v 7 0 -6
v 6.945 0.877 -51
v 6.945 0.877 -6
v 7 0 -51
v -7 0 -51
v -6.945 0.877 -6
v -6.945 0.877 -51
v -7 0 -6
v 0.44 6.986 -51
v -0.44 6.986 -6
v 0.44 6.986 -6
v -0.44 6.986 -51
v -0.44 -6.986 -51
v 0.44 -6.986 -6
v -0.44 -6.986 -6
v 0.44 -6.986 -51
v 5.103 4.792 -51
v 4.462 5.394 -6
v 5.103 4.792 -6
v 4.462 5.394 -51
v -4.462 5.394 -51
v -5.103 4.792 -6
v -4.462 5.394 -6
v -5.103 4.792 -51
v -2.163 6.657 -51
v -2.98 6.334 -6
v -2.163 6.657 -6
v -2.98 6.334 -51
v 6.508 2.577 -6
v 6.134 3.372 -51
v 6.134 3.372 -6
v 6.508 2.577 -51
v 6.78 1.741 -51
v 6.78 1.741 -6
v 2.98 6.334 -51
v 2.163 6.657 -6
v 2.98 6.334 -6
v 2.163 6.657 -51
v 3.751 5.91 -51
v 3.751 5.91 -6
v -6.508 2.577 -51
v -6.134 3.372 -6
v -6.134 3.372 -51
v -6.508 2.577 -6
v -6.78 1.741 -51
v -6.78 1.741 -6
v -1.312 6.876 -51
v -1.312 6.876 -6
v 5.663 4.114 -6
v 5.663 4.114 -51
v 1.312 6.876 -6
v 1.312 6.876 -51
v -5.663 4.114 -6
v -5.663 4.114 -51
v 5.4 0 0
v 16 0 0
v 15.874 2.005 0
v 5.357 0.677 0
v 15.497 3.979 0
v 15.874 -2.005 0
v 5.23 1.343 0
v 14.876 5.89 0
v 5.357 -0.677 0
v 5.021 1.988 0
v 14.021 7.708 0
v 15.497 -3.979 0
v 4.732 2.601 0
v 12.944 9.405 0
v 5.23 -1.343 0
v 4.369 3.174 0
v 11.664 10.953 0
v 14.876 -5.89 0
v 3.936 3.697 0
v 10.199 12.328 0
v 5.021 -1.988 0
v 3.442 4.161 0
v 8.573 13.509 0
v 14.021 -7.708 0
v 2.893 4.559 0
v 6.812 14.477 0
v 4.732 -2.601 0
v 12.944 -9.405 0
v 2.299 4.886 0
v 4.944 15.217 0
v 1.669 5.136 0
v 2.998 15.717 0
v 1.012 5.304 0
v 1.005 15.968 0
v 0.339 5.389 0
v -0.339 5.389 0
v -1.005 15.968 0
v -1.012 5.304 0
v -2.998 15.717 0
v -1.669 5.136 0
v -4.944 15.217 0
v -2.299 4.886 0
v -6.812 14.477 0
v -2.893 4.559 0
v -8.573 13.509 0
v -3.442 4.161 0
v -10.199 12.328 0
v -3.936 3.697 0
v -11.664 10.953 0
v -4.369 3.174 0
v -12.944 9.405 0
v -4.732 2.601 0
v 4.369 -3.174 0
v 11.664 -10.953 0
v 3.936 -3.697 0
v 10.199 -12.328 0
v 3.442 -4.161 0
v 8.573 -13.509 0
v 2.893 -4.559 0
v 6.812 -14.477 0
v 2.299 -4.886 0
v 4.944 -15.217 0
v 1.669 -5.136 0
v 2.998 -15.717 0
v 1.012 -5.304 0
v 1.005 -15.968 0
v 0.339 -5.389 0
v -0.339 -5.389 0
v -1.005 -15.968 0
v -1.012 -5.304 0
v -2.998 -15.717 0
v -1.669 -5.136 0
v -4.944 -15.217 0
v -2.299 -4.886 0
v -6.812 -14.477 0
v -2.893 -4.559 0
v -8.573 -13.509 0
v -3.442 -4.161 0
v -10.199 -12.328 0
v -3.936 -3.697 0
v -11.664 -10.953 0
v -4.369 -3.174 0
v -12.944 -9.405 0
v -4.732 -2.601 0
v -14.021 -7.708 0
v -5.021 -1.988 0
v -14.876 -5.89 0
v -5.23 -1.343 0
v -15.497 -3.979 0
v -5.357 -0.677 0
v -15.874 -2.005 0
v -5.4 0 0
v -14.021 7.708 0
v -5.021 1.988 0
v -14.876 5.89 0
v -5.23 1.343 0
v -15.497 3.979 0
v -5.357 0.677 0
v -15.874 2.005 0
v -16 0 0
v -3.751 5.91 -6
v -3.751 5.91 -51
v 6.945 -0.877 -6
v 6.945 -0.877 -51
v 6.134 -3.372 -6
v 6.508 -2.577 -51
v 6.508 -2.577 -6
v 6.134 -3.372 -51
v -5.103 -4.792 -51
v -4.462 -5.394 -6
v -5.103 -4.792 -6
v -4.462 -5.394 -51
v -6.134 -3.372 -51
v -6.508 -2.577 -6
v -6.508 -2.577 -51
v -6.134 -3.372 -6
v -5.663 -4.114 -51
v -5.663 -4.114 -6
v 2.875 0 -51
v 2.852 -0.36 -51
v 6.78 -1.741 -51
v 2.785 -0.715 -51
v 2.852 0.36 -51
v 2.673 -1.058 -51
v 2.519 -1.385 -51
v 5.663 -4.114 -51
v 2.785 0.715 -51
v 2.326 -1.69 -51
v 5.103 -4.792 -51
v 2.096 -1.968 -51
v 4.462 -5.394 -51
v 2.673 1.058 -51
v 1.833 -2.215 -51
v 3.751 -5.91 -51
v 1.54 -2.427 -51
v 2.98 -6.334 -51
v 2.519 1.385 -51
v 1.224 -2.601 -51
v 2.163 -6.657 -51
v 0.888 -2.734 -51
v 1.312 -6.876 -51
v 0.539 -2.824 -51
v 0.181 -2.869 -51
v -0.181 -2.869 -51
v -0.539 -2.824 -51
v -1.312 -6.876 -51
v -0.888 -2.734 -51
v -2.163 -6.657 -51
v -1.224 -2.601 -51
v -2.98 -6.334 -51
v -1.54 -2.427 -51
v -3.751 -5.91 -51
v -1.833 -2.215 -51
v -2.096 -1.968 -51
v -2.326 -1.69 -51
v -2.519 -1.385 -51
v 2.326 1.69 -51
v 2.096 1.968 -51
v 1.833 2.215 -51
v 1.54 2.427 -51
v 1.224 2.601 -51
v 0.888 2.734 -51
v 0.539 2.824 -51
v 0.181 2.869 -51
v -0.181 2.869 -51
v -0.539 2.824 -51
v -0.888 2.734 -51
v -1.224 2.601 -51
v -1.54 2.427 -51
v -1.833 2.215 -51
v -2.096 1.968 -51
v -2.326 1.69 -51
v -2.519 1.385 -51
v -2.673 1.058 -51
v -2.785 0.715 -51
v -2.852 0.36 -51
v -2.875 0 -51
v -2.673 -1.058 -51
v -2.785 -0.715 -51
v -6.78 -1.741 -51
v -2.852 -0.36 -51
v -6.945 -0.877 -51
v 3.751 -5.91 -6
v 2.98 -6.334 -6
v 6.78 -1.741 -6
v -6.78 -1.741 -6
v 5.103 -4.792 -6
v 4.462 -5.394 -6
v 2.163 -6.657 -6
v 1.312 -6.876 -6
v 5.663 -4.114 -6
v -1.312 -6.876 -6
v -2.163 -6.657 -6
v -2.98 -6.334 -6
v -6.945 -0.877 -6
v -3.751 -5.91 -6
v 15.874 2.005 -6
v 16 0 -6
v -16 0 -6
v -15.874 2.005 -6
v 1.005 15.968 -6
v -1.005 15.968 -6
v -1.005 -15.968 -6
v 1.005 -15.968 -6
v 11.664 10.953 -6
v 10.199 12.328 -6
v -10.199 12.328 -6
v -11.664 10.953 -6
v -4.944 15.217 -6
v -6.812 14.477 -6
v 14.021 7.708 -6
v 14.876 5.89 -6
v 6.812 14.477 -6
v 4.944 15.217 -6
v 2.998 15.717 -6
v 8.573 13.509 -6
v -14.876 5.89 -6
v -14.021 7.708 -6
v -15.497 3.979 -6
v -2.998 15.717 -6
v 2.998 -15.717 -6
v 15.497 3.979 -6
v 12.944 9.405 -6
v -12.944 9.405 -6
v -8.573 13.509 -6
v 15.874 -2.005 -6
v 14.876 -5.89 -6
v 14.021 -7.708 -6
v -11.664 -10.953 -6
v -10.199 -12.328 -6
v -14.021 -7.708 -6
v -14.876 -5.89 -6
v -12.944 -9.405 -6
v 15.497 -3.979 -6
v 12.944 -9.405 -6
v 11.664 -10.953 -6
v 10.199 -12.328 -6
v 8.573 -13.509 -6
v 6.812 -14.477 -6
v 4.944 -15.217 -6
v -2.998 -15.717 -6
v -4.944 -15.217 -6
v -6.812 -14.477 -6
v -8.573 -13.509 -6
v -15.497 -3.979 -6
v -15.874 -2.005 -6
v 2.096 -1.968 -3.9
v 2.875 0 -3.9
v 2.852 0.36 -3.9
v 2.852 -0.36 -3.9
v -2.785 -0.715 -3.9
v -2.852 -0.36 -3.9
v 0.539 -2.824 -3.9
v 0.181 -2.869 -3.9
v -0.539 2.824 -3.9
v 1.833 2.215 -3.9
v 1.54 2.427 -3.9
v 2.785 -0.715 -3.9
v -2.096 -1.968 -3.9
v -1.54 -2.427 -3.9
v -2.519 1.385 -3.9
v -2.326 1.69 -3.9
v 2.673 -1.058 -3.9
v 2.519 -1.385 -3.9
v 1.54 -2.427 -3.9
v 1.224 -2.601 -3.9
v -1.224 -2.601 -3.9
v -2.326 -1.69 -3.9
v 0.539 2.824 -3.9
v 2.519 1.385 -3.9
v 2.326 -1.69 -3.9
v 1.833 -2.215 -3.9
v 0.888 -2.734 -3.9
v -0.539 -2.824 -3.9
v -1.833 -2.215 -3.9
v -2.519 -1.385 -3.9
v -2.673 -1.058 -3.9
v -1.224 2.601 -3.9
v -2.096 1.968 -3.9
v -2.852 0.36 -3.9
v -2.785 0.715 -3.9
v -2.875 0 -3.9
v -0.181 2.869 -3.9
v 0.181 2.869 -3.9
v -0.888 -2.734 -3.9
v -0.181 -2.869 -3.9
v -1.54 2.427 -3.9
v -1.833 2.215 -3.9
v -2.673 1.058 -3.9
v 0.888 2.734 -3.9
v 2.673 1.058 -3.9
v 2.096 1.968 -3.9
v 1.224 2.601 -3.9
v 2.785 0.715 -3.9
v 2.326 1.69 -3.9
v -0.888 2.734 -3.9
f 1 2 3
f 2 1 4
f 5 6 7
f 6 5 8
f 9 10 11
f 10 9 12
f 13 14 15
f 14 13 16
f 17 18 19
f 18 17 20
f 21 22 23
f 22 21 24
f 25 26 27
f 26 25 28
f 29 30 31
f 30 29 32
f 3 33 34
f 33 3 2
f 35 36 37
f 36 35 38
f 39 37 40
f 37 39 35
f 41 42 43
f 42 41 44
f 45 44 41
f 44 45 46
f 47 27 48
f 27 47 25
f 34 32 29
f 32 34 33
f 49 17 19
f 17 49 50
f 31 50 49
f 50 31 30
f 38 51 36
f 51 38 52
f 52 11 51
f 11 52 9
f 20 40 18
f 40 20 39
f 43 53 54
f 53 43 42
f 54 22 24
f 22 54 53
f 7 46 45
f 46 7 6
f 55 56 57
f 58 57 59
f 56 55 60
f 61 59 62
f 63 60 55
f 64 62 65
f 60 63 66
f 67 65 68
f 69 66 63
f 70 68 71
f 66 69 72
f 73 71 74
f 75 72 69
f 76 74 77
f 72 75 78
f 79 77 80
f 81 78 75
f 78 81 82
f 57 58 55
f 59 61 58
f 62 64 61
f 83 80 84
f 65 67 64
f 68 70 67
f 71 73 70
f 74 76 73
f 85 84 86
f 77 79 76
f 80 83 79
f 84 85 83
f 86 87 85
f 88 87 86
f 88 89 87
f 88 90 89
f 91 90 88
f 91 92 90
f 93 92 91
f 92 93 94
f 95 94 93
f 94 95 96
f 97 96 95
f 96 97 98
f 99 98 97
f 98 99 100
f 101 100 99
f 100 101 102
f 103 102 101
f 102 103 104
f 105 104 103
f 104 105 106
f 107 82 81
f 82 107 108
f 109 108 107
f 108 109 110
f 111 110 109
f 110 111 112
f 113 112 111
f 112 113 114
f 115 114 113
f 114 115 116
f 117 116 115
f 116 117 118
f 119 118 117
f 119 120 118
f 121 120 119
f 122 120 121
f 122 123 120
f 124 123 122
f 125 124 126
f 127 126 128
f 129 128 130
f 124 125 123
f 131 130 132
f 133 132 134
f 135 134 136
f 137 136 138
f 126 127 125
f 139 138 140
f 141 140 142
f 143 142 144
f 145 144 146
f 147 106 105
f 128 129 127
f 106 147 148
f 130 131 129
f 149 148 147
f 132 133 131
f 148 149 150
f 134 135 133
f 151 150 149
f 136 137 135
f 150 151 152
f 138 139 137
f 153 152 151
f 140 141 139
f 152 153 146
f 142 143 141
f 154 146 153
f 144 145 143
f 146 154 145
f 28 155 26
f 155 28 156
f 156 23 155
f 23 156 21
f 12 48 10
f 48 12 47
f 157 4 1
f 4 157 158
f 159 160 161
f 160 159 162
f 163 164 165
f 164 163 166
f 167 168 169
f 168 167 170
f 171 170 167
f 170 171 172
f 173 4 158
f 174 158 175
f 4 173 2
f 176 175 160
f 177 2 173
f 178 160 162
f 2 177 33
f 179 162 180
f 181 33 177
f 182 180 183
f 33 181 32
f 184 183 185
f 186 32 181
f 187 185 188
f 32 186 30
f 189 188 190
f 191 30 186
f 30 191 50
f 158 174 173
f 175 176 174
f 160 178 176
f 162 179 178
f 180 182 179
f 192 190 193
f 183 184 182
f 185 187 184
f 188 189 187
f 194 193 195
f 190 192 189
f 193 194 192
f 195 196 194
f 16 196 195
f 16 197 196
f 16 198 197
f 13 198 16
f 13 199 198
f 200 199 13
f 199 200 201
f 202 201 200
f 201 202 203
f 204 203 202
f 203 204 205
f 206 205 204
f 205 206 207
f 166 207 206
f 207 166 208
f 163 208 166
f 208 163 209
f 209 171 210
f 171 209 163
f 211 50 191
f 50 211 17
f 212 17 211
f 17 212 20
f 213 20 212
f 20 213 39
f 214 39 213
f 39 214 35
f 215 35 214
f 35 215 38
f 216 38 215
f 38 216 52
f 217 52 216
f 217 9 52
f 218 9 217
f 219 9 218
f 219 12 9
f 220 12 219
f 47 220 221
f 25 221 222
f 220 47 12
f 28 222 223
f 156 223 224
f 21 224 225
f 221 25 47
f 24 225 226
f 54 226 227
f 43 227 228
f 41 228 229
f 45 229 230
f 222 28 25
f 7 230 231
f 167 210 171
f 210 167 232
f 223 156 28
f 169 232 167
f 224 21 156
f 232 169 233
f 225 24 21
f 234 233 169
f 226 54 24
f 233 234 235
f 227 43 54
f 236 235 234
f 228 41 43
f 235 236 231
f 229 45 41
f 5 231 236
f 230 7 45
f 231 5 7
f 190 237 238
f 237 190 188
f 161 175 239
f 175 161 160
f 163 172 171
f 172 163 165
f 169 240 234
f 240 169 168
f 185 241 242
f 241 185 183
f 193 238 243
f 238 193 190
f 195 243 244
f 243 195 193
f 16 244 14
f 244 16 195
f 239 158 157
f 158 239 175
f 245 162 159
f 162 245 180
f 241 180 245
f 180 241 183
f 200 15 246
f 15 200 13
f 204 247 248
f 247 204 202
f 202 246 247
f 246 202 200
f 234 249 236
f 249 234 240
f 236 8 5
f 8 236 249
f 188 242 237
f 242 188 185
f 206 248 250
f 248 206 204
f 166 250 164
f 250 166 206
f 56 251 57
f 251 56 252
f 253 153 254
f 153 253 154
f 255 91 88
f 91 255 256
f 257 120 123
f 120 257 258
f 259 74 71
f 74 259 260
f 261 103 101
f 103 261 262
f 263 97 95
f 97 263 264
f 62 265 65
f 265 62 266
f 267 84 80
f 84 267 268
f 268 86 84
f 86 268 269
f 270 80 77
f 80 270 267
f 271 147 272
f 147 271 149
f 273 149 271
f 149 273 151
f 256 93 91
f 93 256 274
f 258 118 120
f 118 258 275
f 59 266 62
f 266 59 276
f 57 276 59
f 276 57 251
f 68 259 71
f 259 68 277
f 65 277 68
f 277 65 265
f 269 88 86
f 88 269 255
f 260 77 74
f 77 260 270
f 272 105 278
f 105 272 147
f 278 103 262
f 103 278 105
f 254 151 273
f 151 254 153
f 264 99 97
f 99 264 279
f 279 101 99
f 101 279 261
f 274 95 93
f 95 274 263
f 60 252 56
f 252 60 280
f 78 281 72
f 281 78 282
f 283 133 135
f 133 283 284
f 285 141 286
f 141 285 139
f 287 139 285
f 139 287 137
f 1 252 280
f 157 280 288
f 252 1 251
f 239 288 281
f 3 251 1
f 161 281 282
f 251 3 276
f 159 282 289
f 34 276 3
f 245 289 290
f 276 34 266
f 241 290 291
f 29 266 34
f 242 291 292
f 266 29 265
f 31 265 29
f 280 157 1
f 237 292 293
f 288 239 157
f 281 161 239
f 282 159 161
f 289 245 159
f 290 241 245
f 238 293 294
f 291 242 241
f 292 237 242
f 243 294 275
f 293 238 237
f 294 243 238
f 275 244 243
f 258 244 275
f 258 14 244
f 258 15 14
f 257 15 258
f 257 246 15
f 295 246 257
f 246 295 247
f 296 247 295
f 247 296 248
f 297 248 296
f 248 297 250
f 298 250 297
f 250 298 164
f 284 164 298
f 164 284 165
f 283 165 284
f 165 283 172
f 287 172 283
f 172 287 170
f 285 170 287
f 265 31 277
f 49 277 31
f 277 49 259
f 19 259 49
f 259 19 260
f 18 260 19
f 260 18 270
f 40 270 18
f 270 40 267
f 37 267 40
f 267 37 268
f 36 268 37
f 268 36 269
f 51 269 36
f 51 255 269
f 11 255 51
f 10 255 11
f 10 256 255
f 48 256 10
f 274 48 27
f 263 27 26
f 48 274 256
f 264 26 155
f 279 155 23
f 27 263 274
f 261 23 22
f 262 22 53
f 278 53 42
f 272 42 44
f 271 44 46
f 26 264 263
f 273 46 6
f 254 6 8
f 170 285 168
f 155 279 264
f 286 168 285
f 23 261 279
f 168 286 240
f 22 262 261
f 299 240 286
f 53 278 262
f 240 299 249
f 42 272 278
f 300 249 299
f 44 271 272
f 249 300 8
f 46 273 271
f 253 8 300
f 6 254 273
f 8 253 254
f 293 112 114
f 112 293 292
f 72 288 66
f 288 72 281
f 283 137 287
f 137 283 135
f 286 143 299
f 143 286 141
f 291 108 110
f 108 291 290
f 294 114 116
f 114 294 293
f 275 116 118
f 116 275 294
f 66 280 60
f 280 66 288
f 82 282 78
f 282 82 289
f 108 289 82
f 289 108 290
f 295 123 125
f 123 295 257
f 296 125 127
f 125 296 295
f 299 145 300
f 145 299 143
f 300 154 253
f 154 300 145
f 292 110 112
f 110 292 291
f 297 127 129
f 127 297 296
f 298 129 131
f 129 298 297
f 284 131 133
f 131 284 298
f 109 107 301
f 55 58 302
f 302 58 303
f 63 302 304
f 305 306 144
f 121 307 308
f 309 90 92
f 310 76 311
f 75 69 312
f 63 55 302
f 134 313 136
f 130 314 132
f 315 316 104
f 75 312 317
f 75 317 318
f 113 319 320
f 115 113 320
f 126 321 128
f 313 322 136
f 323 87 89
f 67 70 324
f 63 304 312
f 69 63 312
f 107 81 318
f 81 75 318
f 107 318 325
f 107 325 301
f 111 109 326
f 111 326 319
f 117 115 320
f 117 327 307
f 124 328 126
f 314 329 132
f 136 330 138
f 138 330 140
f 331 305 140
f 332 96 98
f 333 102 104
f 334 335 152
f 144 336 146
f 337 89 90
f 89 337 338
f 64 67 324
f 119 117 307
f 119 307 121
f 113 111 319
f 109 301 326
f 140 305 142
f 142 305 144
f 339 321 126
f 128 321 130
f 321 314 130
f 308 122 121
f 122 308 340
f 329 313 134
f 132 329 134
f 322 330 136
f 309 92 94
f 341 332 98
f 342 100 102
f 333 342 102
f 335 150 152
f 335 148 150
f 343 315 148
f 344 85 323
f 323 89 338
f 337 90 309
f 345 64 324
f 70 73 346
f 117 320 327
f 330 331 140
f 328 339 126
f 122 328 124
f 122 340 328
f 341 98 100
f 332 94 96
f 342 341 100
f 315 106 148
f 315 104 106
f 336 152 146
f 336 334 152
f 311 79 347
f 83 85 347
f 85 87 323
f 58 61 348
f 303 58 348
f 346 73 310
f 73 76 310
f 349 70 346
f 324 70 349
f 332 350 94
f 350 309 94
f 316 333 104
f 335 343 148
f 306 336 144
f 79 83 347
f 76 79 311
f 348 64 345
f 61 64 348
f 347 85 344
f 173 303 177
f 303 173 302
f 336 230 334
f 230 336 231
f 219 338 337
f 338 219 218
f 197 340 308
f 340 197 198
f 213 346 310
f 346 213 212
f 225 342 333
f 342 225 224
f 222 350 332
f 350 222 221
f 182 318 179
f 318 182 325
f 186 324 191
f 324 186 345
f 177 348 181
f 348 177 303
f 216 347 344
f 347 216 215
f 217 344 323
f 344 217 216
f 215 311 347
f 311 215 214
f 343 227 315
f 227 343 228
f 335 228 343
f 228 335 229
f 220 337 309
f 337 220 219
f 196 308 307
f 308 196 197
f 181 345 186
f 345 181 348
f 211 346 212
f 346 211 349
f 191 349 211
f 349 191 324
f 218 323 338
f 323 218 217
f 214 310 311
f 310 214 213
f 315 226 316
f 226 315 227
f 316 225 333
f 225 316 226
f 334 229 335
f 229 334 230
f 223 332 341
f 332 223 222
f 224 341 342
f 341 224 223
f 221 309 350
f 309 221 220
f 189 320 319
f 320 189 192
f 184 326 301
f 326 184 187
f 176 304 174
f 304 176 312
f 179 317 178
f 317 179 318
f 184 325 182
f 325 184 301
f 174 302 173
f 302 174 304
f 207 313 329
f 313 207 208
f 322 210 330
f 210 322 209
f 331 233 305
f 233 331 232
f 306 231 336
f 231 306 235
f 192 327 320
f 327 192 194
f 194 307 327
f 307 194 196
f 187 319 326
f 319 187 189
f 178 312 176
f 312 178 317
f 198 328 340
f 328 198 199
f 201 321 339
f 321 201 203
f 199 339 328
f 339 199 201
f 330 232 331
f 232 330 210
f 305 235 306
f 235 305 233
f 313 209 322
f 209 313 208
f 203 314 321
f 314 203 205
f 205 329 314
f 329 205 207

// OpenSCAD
$fn = 50;


difference() {
	union() {
		translate(v = [0, 0, -51.0000000000]) {
			cylinder(h = 51, r = 7.0000000000);
		}
		translate(v = [0, 0, -6.0000000000]) {
			cylinder(h = 6, r = 16.0000000000);
		}
	}
	union() {
		translate(v = [0, 0, 0]) {
			rotate(a = [0, 0, 0]) {
				difference() {
					union() {
						#translate(v = [0, 0, -51.0000000000]) {
							cylinder(h = 51, r = 2.6000000000);
						}
						#translate(v = [0, 0, -3.9000000000]) {
							cylinder(h = 3.9000000000, r = 7.0000000000, r1 = 2.8750000000, r2 = 5.4000000000);
						}
						#translate(v = [0, 0, -51.0000000000]) {
							cylinder(h = 51, r = 2.8750000000);
						}
						#translate(v = [0, 0, -51.0000000000]) {
							cylinder(h = 51, r = 2.6000000000);
						}
					}
					union();
				}
			}
		}
	}
}
